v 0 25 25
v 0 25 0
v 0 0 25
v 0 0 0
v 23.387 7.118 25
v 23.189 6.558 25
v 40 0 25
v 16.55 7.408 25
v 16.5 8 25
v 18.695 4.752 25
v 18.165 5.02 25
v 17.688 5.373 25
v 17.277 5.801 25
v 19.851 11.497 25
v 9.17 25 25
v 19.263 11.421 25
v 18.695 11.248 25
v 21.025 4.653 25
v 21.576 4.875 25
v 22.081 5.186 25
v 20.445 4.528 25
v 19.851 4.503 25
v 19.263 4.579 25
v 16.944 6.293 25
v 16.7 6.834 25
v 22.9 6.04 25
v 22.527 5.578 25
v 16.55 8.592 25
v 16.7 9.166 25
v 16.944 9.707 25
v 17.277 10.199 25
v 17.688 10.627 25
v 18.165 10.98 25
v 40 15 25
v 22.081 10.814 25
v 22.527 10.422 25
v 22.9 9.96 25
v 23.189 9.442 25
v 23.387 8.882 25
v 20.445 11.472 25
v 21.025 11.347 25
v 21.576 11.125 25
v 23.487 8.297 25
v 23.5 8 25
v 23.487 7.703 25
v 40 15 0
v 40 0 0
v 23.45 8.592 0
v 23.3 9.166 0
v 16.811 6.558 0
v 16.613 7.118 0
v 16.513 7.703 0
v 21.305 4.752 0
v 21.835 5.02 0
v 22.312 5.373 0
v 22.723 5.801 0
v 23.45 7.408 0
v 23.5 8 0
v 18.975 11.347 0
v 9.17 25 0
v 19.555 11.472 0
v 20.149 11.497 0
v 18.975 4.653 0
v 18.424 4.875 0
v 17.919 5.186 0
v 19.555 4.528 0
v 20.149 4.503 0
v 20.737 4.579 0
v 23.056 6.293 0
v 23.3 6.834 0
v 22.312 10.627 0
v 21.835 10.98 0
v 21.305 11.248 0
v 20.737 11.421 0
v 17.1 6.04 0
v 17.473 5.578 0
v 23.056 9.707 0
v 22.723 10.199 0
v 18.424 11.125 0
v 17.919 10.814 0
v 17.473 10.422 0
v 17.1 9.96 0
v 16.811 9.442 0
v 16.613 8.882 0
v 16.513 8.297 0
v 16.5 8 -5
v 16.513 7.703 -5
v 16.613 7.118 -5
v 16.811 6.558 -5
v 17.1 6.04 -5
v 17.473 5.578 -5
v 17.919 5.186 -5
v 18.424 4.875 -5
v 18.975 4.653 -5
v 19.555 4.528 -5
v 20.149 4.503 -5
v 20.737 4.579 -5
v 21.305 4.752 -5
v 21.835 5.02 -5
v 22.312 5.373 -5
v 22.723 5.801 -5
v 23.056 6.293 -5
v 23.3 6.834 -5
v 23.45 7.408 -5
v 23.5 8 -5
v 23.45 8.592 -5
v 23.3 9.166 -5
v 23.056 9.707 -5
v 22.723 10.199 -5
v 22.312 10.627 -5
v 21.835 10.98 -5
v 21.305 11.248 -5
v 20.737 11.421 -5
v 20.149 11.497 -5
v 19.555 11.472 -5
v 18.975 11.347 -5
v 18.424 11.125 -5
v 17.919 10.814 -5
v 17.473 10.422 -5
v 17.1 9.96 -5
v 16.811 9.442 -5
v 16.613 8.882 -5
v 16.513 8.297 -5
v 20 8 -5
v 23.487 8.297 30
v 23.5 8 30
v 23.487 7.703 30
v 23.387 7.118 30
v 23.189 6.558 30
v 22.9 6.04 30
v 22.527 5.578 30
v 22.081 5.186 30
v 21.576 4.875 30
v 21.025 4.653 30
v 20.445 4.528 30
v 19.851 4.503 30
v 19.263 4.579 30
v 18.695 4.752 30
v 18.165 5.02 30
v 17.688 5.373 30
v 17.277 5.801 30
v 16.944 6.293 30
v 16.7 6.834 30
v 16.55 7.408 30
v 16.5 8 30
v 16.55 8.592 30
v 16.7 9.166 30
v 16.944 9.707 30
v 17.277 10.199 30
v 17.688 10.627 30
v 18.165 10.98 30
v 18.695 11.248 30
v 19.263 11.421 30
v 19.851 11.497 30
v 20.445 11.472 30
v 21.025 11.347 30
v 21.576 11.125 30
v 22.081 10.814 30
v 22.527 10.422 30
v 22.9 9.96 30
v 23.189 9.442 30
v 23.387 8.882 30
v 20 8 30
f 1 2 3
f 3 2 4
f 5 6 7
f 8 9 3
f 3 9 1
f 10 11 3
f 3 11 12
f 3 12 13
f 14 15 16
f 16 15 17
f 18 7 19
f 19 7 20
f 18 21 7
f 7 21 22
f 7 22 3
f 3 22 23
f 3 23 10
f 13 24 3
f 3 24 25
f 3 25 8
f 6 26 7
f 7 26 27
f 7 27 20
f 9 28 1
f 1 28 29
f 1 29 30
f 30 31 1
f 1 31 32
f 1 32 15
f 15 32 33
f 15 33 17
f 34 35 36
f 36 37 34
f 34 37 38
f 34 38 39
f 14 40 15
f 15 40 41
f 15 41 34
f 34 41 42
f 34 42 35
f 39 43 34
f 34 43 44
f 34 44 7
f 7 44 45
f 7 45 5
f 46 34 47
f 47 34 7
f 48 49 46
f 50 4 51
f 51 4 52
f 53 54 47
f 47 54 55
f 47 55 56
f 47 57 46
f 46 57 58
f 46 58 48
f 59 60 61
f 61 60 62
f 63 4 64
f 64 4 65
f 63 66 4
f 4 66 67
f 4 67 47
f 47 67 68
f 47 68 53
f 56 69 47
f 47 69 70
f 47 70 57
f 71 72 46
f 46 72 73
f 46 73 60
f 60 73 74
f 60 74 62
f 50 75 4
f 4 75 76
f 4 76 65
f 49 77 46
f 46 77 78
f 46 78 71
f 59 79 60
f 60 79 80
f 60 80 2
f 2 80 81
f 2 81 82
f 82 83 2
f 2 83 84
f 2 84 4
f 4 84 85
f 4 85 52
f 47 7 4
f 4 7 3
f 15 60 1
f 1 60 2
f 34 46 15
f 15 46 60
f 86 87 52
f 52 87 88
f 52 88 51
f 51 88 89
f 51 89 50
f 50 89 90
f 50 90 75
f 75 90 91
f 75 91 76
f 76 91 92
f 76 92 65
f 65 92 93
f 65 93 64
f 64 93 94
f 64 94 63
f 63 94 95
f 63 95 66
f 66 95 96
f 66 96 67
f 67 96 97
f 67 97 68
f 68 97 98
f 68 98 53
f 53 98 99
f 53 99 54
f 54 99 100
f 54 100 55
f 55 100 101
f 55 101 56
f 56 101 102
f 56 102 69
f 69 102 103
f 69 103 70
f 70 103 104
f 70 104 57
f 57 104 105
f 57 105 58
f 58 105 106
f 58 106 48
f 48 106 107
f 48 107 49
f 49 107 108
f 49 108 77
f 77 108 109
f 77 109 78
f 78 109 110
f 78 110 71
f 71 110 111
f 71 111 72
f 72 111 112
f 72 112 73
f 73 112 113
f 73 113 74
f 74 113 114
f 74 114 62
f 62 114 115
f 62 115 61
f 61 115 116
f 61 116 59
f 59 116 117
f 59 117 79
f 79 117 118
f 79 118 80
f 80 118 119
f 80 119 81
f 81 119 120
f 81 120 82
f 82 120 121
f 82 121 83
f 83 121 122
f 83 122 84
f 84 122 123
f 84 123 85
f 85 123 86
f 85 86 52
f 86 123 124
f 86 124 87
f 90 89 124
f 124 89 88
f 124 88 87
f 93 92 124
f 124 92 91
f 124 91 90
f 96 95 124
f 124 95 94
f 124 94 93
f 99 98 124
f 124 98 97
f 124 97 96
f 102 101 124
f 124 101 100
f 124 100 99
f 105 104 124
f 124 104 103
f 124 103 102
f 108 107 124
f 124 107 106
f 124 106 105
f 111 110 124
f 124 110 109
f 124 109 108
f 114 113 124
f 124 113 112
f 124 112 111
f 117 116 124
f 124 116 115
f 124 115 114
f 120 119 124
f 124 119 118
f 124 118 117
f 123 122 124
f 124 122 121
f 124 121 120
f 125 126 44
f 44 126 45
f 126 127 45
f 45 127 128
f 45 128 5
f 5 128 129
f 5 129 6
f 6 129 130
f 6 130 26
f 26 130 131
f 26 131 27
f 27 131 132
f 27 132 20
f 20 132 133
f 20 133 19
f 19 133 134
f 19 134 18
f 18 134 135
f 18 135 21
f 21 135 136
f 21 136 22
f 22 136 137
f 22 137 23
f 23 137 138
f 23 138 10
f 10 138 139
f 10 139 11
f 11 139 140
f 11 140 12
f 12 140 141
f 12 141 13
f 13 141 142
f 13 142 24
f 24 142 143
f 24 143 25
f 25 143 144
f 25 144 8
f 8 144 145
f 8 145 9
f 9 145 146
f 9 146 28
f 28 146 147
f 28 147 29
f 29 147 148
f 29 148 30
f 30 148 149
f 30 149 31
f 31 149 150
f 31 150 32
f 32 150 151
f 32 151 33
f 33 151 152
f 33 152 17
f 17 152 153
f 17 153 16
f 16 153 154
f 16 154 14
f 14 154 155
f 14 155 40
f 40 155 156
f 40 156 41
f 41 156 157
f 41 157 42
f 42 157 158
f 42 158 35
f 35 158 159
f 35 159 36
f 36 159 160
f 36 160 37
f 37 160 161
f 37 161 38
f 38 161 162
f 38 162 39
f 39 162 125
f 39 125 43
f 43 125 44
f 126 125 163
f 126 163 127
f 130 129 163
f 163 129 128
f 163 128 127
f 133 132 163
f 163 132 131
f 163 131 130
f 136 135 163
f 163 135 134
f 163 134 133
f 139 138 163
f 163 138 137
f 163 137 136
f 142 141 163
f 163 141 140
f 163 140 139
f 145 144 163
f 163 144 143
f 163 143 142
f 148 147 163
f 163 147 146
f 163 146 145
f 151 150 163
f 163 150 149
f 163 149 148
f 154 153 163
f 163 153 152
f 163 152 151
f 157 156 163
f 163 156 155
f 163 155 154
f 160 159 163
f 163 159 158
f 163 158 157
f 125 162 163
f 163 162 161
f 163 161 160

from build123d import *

# Parameters (mm, degrees)
SKETCH_1_W      = 40
SKETCH_1_H      = 25
EXTRUDE_1_DEPTH = 15
SKETCH_2_W      = 9.169537909
SKETCH_2_H      = 25
EXTRUDE_2_DEPTH = 10
OTHER_1_DEPTH   = 25
SKETCH_6_R      = 3.5
EXTRUDE_3_DEPTH = 5
EXTRUDE_START   = 5
SKETCH_7_R      = 3.5
EXTRUDE_4_DEPTH = 5


# Read off the part's stored shape, not the designer's step: 边界1
with BuildPart() as part:
    # 草图1 → 凸台-拉伸1 (new body)
    with BuildSketch(Plane(origin=(0, 0, 0), x_dir=(1, 0, 0), z_dir=(0, 1, 0))):
        with Locations((20, -12.5)):
            Rectangle(SKETCH_1_W, SKETCH_1_H)
    extrude(amount=EXTRUDE_1_DEPTH)

    # 草图2 → 凸台-拉伸2 (add)
    with BuildSketch(Plane(origin=(0, 15, 0), x_dir=(1, 0, 0), z_dir=(0, 1, 0))):
        with Locations((4.584768955, -12.5)):
            Rectangle(SKETCH_2_W, SKETCH_2_H)
    extrude(amount=EXTRUDE_2_DEPTH)

    # 边界1 outline → 边界1 (add)
    with BuildSketch(Plane.XY):
        Polygon((9.169537909, 15), (40, 15), (9.169537909, 25), align=None)
    extrude(amount=OTHER_1_DEPTH)

    # 草图6 → 凸台-拉伸3 (add)
    with BuildSketch(Plane(origin=(0, 0, 0), x_dir=(-1, 0, 0), z_dir=(0, 0, -1))):
        with Locations(Location((-20, 8, 0), (0, 0, 180))):
            Circle(SKETCH_6_R)
    extrude(amount=EXTRUDE_3_DEPTH)

    # 草图7 → 凸台-拉伸4 (add)
    with BuildSketch(Plane.XY.offset(25).offset(EXTRUDE_START)):
        with Locations((20, 8)):
            Circle(SKETCH_7_R)
    extrude(amount=-EXTRUDE_4_DEPTH)


solid = part.part
